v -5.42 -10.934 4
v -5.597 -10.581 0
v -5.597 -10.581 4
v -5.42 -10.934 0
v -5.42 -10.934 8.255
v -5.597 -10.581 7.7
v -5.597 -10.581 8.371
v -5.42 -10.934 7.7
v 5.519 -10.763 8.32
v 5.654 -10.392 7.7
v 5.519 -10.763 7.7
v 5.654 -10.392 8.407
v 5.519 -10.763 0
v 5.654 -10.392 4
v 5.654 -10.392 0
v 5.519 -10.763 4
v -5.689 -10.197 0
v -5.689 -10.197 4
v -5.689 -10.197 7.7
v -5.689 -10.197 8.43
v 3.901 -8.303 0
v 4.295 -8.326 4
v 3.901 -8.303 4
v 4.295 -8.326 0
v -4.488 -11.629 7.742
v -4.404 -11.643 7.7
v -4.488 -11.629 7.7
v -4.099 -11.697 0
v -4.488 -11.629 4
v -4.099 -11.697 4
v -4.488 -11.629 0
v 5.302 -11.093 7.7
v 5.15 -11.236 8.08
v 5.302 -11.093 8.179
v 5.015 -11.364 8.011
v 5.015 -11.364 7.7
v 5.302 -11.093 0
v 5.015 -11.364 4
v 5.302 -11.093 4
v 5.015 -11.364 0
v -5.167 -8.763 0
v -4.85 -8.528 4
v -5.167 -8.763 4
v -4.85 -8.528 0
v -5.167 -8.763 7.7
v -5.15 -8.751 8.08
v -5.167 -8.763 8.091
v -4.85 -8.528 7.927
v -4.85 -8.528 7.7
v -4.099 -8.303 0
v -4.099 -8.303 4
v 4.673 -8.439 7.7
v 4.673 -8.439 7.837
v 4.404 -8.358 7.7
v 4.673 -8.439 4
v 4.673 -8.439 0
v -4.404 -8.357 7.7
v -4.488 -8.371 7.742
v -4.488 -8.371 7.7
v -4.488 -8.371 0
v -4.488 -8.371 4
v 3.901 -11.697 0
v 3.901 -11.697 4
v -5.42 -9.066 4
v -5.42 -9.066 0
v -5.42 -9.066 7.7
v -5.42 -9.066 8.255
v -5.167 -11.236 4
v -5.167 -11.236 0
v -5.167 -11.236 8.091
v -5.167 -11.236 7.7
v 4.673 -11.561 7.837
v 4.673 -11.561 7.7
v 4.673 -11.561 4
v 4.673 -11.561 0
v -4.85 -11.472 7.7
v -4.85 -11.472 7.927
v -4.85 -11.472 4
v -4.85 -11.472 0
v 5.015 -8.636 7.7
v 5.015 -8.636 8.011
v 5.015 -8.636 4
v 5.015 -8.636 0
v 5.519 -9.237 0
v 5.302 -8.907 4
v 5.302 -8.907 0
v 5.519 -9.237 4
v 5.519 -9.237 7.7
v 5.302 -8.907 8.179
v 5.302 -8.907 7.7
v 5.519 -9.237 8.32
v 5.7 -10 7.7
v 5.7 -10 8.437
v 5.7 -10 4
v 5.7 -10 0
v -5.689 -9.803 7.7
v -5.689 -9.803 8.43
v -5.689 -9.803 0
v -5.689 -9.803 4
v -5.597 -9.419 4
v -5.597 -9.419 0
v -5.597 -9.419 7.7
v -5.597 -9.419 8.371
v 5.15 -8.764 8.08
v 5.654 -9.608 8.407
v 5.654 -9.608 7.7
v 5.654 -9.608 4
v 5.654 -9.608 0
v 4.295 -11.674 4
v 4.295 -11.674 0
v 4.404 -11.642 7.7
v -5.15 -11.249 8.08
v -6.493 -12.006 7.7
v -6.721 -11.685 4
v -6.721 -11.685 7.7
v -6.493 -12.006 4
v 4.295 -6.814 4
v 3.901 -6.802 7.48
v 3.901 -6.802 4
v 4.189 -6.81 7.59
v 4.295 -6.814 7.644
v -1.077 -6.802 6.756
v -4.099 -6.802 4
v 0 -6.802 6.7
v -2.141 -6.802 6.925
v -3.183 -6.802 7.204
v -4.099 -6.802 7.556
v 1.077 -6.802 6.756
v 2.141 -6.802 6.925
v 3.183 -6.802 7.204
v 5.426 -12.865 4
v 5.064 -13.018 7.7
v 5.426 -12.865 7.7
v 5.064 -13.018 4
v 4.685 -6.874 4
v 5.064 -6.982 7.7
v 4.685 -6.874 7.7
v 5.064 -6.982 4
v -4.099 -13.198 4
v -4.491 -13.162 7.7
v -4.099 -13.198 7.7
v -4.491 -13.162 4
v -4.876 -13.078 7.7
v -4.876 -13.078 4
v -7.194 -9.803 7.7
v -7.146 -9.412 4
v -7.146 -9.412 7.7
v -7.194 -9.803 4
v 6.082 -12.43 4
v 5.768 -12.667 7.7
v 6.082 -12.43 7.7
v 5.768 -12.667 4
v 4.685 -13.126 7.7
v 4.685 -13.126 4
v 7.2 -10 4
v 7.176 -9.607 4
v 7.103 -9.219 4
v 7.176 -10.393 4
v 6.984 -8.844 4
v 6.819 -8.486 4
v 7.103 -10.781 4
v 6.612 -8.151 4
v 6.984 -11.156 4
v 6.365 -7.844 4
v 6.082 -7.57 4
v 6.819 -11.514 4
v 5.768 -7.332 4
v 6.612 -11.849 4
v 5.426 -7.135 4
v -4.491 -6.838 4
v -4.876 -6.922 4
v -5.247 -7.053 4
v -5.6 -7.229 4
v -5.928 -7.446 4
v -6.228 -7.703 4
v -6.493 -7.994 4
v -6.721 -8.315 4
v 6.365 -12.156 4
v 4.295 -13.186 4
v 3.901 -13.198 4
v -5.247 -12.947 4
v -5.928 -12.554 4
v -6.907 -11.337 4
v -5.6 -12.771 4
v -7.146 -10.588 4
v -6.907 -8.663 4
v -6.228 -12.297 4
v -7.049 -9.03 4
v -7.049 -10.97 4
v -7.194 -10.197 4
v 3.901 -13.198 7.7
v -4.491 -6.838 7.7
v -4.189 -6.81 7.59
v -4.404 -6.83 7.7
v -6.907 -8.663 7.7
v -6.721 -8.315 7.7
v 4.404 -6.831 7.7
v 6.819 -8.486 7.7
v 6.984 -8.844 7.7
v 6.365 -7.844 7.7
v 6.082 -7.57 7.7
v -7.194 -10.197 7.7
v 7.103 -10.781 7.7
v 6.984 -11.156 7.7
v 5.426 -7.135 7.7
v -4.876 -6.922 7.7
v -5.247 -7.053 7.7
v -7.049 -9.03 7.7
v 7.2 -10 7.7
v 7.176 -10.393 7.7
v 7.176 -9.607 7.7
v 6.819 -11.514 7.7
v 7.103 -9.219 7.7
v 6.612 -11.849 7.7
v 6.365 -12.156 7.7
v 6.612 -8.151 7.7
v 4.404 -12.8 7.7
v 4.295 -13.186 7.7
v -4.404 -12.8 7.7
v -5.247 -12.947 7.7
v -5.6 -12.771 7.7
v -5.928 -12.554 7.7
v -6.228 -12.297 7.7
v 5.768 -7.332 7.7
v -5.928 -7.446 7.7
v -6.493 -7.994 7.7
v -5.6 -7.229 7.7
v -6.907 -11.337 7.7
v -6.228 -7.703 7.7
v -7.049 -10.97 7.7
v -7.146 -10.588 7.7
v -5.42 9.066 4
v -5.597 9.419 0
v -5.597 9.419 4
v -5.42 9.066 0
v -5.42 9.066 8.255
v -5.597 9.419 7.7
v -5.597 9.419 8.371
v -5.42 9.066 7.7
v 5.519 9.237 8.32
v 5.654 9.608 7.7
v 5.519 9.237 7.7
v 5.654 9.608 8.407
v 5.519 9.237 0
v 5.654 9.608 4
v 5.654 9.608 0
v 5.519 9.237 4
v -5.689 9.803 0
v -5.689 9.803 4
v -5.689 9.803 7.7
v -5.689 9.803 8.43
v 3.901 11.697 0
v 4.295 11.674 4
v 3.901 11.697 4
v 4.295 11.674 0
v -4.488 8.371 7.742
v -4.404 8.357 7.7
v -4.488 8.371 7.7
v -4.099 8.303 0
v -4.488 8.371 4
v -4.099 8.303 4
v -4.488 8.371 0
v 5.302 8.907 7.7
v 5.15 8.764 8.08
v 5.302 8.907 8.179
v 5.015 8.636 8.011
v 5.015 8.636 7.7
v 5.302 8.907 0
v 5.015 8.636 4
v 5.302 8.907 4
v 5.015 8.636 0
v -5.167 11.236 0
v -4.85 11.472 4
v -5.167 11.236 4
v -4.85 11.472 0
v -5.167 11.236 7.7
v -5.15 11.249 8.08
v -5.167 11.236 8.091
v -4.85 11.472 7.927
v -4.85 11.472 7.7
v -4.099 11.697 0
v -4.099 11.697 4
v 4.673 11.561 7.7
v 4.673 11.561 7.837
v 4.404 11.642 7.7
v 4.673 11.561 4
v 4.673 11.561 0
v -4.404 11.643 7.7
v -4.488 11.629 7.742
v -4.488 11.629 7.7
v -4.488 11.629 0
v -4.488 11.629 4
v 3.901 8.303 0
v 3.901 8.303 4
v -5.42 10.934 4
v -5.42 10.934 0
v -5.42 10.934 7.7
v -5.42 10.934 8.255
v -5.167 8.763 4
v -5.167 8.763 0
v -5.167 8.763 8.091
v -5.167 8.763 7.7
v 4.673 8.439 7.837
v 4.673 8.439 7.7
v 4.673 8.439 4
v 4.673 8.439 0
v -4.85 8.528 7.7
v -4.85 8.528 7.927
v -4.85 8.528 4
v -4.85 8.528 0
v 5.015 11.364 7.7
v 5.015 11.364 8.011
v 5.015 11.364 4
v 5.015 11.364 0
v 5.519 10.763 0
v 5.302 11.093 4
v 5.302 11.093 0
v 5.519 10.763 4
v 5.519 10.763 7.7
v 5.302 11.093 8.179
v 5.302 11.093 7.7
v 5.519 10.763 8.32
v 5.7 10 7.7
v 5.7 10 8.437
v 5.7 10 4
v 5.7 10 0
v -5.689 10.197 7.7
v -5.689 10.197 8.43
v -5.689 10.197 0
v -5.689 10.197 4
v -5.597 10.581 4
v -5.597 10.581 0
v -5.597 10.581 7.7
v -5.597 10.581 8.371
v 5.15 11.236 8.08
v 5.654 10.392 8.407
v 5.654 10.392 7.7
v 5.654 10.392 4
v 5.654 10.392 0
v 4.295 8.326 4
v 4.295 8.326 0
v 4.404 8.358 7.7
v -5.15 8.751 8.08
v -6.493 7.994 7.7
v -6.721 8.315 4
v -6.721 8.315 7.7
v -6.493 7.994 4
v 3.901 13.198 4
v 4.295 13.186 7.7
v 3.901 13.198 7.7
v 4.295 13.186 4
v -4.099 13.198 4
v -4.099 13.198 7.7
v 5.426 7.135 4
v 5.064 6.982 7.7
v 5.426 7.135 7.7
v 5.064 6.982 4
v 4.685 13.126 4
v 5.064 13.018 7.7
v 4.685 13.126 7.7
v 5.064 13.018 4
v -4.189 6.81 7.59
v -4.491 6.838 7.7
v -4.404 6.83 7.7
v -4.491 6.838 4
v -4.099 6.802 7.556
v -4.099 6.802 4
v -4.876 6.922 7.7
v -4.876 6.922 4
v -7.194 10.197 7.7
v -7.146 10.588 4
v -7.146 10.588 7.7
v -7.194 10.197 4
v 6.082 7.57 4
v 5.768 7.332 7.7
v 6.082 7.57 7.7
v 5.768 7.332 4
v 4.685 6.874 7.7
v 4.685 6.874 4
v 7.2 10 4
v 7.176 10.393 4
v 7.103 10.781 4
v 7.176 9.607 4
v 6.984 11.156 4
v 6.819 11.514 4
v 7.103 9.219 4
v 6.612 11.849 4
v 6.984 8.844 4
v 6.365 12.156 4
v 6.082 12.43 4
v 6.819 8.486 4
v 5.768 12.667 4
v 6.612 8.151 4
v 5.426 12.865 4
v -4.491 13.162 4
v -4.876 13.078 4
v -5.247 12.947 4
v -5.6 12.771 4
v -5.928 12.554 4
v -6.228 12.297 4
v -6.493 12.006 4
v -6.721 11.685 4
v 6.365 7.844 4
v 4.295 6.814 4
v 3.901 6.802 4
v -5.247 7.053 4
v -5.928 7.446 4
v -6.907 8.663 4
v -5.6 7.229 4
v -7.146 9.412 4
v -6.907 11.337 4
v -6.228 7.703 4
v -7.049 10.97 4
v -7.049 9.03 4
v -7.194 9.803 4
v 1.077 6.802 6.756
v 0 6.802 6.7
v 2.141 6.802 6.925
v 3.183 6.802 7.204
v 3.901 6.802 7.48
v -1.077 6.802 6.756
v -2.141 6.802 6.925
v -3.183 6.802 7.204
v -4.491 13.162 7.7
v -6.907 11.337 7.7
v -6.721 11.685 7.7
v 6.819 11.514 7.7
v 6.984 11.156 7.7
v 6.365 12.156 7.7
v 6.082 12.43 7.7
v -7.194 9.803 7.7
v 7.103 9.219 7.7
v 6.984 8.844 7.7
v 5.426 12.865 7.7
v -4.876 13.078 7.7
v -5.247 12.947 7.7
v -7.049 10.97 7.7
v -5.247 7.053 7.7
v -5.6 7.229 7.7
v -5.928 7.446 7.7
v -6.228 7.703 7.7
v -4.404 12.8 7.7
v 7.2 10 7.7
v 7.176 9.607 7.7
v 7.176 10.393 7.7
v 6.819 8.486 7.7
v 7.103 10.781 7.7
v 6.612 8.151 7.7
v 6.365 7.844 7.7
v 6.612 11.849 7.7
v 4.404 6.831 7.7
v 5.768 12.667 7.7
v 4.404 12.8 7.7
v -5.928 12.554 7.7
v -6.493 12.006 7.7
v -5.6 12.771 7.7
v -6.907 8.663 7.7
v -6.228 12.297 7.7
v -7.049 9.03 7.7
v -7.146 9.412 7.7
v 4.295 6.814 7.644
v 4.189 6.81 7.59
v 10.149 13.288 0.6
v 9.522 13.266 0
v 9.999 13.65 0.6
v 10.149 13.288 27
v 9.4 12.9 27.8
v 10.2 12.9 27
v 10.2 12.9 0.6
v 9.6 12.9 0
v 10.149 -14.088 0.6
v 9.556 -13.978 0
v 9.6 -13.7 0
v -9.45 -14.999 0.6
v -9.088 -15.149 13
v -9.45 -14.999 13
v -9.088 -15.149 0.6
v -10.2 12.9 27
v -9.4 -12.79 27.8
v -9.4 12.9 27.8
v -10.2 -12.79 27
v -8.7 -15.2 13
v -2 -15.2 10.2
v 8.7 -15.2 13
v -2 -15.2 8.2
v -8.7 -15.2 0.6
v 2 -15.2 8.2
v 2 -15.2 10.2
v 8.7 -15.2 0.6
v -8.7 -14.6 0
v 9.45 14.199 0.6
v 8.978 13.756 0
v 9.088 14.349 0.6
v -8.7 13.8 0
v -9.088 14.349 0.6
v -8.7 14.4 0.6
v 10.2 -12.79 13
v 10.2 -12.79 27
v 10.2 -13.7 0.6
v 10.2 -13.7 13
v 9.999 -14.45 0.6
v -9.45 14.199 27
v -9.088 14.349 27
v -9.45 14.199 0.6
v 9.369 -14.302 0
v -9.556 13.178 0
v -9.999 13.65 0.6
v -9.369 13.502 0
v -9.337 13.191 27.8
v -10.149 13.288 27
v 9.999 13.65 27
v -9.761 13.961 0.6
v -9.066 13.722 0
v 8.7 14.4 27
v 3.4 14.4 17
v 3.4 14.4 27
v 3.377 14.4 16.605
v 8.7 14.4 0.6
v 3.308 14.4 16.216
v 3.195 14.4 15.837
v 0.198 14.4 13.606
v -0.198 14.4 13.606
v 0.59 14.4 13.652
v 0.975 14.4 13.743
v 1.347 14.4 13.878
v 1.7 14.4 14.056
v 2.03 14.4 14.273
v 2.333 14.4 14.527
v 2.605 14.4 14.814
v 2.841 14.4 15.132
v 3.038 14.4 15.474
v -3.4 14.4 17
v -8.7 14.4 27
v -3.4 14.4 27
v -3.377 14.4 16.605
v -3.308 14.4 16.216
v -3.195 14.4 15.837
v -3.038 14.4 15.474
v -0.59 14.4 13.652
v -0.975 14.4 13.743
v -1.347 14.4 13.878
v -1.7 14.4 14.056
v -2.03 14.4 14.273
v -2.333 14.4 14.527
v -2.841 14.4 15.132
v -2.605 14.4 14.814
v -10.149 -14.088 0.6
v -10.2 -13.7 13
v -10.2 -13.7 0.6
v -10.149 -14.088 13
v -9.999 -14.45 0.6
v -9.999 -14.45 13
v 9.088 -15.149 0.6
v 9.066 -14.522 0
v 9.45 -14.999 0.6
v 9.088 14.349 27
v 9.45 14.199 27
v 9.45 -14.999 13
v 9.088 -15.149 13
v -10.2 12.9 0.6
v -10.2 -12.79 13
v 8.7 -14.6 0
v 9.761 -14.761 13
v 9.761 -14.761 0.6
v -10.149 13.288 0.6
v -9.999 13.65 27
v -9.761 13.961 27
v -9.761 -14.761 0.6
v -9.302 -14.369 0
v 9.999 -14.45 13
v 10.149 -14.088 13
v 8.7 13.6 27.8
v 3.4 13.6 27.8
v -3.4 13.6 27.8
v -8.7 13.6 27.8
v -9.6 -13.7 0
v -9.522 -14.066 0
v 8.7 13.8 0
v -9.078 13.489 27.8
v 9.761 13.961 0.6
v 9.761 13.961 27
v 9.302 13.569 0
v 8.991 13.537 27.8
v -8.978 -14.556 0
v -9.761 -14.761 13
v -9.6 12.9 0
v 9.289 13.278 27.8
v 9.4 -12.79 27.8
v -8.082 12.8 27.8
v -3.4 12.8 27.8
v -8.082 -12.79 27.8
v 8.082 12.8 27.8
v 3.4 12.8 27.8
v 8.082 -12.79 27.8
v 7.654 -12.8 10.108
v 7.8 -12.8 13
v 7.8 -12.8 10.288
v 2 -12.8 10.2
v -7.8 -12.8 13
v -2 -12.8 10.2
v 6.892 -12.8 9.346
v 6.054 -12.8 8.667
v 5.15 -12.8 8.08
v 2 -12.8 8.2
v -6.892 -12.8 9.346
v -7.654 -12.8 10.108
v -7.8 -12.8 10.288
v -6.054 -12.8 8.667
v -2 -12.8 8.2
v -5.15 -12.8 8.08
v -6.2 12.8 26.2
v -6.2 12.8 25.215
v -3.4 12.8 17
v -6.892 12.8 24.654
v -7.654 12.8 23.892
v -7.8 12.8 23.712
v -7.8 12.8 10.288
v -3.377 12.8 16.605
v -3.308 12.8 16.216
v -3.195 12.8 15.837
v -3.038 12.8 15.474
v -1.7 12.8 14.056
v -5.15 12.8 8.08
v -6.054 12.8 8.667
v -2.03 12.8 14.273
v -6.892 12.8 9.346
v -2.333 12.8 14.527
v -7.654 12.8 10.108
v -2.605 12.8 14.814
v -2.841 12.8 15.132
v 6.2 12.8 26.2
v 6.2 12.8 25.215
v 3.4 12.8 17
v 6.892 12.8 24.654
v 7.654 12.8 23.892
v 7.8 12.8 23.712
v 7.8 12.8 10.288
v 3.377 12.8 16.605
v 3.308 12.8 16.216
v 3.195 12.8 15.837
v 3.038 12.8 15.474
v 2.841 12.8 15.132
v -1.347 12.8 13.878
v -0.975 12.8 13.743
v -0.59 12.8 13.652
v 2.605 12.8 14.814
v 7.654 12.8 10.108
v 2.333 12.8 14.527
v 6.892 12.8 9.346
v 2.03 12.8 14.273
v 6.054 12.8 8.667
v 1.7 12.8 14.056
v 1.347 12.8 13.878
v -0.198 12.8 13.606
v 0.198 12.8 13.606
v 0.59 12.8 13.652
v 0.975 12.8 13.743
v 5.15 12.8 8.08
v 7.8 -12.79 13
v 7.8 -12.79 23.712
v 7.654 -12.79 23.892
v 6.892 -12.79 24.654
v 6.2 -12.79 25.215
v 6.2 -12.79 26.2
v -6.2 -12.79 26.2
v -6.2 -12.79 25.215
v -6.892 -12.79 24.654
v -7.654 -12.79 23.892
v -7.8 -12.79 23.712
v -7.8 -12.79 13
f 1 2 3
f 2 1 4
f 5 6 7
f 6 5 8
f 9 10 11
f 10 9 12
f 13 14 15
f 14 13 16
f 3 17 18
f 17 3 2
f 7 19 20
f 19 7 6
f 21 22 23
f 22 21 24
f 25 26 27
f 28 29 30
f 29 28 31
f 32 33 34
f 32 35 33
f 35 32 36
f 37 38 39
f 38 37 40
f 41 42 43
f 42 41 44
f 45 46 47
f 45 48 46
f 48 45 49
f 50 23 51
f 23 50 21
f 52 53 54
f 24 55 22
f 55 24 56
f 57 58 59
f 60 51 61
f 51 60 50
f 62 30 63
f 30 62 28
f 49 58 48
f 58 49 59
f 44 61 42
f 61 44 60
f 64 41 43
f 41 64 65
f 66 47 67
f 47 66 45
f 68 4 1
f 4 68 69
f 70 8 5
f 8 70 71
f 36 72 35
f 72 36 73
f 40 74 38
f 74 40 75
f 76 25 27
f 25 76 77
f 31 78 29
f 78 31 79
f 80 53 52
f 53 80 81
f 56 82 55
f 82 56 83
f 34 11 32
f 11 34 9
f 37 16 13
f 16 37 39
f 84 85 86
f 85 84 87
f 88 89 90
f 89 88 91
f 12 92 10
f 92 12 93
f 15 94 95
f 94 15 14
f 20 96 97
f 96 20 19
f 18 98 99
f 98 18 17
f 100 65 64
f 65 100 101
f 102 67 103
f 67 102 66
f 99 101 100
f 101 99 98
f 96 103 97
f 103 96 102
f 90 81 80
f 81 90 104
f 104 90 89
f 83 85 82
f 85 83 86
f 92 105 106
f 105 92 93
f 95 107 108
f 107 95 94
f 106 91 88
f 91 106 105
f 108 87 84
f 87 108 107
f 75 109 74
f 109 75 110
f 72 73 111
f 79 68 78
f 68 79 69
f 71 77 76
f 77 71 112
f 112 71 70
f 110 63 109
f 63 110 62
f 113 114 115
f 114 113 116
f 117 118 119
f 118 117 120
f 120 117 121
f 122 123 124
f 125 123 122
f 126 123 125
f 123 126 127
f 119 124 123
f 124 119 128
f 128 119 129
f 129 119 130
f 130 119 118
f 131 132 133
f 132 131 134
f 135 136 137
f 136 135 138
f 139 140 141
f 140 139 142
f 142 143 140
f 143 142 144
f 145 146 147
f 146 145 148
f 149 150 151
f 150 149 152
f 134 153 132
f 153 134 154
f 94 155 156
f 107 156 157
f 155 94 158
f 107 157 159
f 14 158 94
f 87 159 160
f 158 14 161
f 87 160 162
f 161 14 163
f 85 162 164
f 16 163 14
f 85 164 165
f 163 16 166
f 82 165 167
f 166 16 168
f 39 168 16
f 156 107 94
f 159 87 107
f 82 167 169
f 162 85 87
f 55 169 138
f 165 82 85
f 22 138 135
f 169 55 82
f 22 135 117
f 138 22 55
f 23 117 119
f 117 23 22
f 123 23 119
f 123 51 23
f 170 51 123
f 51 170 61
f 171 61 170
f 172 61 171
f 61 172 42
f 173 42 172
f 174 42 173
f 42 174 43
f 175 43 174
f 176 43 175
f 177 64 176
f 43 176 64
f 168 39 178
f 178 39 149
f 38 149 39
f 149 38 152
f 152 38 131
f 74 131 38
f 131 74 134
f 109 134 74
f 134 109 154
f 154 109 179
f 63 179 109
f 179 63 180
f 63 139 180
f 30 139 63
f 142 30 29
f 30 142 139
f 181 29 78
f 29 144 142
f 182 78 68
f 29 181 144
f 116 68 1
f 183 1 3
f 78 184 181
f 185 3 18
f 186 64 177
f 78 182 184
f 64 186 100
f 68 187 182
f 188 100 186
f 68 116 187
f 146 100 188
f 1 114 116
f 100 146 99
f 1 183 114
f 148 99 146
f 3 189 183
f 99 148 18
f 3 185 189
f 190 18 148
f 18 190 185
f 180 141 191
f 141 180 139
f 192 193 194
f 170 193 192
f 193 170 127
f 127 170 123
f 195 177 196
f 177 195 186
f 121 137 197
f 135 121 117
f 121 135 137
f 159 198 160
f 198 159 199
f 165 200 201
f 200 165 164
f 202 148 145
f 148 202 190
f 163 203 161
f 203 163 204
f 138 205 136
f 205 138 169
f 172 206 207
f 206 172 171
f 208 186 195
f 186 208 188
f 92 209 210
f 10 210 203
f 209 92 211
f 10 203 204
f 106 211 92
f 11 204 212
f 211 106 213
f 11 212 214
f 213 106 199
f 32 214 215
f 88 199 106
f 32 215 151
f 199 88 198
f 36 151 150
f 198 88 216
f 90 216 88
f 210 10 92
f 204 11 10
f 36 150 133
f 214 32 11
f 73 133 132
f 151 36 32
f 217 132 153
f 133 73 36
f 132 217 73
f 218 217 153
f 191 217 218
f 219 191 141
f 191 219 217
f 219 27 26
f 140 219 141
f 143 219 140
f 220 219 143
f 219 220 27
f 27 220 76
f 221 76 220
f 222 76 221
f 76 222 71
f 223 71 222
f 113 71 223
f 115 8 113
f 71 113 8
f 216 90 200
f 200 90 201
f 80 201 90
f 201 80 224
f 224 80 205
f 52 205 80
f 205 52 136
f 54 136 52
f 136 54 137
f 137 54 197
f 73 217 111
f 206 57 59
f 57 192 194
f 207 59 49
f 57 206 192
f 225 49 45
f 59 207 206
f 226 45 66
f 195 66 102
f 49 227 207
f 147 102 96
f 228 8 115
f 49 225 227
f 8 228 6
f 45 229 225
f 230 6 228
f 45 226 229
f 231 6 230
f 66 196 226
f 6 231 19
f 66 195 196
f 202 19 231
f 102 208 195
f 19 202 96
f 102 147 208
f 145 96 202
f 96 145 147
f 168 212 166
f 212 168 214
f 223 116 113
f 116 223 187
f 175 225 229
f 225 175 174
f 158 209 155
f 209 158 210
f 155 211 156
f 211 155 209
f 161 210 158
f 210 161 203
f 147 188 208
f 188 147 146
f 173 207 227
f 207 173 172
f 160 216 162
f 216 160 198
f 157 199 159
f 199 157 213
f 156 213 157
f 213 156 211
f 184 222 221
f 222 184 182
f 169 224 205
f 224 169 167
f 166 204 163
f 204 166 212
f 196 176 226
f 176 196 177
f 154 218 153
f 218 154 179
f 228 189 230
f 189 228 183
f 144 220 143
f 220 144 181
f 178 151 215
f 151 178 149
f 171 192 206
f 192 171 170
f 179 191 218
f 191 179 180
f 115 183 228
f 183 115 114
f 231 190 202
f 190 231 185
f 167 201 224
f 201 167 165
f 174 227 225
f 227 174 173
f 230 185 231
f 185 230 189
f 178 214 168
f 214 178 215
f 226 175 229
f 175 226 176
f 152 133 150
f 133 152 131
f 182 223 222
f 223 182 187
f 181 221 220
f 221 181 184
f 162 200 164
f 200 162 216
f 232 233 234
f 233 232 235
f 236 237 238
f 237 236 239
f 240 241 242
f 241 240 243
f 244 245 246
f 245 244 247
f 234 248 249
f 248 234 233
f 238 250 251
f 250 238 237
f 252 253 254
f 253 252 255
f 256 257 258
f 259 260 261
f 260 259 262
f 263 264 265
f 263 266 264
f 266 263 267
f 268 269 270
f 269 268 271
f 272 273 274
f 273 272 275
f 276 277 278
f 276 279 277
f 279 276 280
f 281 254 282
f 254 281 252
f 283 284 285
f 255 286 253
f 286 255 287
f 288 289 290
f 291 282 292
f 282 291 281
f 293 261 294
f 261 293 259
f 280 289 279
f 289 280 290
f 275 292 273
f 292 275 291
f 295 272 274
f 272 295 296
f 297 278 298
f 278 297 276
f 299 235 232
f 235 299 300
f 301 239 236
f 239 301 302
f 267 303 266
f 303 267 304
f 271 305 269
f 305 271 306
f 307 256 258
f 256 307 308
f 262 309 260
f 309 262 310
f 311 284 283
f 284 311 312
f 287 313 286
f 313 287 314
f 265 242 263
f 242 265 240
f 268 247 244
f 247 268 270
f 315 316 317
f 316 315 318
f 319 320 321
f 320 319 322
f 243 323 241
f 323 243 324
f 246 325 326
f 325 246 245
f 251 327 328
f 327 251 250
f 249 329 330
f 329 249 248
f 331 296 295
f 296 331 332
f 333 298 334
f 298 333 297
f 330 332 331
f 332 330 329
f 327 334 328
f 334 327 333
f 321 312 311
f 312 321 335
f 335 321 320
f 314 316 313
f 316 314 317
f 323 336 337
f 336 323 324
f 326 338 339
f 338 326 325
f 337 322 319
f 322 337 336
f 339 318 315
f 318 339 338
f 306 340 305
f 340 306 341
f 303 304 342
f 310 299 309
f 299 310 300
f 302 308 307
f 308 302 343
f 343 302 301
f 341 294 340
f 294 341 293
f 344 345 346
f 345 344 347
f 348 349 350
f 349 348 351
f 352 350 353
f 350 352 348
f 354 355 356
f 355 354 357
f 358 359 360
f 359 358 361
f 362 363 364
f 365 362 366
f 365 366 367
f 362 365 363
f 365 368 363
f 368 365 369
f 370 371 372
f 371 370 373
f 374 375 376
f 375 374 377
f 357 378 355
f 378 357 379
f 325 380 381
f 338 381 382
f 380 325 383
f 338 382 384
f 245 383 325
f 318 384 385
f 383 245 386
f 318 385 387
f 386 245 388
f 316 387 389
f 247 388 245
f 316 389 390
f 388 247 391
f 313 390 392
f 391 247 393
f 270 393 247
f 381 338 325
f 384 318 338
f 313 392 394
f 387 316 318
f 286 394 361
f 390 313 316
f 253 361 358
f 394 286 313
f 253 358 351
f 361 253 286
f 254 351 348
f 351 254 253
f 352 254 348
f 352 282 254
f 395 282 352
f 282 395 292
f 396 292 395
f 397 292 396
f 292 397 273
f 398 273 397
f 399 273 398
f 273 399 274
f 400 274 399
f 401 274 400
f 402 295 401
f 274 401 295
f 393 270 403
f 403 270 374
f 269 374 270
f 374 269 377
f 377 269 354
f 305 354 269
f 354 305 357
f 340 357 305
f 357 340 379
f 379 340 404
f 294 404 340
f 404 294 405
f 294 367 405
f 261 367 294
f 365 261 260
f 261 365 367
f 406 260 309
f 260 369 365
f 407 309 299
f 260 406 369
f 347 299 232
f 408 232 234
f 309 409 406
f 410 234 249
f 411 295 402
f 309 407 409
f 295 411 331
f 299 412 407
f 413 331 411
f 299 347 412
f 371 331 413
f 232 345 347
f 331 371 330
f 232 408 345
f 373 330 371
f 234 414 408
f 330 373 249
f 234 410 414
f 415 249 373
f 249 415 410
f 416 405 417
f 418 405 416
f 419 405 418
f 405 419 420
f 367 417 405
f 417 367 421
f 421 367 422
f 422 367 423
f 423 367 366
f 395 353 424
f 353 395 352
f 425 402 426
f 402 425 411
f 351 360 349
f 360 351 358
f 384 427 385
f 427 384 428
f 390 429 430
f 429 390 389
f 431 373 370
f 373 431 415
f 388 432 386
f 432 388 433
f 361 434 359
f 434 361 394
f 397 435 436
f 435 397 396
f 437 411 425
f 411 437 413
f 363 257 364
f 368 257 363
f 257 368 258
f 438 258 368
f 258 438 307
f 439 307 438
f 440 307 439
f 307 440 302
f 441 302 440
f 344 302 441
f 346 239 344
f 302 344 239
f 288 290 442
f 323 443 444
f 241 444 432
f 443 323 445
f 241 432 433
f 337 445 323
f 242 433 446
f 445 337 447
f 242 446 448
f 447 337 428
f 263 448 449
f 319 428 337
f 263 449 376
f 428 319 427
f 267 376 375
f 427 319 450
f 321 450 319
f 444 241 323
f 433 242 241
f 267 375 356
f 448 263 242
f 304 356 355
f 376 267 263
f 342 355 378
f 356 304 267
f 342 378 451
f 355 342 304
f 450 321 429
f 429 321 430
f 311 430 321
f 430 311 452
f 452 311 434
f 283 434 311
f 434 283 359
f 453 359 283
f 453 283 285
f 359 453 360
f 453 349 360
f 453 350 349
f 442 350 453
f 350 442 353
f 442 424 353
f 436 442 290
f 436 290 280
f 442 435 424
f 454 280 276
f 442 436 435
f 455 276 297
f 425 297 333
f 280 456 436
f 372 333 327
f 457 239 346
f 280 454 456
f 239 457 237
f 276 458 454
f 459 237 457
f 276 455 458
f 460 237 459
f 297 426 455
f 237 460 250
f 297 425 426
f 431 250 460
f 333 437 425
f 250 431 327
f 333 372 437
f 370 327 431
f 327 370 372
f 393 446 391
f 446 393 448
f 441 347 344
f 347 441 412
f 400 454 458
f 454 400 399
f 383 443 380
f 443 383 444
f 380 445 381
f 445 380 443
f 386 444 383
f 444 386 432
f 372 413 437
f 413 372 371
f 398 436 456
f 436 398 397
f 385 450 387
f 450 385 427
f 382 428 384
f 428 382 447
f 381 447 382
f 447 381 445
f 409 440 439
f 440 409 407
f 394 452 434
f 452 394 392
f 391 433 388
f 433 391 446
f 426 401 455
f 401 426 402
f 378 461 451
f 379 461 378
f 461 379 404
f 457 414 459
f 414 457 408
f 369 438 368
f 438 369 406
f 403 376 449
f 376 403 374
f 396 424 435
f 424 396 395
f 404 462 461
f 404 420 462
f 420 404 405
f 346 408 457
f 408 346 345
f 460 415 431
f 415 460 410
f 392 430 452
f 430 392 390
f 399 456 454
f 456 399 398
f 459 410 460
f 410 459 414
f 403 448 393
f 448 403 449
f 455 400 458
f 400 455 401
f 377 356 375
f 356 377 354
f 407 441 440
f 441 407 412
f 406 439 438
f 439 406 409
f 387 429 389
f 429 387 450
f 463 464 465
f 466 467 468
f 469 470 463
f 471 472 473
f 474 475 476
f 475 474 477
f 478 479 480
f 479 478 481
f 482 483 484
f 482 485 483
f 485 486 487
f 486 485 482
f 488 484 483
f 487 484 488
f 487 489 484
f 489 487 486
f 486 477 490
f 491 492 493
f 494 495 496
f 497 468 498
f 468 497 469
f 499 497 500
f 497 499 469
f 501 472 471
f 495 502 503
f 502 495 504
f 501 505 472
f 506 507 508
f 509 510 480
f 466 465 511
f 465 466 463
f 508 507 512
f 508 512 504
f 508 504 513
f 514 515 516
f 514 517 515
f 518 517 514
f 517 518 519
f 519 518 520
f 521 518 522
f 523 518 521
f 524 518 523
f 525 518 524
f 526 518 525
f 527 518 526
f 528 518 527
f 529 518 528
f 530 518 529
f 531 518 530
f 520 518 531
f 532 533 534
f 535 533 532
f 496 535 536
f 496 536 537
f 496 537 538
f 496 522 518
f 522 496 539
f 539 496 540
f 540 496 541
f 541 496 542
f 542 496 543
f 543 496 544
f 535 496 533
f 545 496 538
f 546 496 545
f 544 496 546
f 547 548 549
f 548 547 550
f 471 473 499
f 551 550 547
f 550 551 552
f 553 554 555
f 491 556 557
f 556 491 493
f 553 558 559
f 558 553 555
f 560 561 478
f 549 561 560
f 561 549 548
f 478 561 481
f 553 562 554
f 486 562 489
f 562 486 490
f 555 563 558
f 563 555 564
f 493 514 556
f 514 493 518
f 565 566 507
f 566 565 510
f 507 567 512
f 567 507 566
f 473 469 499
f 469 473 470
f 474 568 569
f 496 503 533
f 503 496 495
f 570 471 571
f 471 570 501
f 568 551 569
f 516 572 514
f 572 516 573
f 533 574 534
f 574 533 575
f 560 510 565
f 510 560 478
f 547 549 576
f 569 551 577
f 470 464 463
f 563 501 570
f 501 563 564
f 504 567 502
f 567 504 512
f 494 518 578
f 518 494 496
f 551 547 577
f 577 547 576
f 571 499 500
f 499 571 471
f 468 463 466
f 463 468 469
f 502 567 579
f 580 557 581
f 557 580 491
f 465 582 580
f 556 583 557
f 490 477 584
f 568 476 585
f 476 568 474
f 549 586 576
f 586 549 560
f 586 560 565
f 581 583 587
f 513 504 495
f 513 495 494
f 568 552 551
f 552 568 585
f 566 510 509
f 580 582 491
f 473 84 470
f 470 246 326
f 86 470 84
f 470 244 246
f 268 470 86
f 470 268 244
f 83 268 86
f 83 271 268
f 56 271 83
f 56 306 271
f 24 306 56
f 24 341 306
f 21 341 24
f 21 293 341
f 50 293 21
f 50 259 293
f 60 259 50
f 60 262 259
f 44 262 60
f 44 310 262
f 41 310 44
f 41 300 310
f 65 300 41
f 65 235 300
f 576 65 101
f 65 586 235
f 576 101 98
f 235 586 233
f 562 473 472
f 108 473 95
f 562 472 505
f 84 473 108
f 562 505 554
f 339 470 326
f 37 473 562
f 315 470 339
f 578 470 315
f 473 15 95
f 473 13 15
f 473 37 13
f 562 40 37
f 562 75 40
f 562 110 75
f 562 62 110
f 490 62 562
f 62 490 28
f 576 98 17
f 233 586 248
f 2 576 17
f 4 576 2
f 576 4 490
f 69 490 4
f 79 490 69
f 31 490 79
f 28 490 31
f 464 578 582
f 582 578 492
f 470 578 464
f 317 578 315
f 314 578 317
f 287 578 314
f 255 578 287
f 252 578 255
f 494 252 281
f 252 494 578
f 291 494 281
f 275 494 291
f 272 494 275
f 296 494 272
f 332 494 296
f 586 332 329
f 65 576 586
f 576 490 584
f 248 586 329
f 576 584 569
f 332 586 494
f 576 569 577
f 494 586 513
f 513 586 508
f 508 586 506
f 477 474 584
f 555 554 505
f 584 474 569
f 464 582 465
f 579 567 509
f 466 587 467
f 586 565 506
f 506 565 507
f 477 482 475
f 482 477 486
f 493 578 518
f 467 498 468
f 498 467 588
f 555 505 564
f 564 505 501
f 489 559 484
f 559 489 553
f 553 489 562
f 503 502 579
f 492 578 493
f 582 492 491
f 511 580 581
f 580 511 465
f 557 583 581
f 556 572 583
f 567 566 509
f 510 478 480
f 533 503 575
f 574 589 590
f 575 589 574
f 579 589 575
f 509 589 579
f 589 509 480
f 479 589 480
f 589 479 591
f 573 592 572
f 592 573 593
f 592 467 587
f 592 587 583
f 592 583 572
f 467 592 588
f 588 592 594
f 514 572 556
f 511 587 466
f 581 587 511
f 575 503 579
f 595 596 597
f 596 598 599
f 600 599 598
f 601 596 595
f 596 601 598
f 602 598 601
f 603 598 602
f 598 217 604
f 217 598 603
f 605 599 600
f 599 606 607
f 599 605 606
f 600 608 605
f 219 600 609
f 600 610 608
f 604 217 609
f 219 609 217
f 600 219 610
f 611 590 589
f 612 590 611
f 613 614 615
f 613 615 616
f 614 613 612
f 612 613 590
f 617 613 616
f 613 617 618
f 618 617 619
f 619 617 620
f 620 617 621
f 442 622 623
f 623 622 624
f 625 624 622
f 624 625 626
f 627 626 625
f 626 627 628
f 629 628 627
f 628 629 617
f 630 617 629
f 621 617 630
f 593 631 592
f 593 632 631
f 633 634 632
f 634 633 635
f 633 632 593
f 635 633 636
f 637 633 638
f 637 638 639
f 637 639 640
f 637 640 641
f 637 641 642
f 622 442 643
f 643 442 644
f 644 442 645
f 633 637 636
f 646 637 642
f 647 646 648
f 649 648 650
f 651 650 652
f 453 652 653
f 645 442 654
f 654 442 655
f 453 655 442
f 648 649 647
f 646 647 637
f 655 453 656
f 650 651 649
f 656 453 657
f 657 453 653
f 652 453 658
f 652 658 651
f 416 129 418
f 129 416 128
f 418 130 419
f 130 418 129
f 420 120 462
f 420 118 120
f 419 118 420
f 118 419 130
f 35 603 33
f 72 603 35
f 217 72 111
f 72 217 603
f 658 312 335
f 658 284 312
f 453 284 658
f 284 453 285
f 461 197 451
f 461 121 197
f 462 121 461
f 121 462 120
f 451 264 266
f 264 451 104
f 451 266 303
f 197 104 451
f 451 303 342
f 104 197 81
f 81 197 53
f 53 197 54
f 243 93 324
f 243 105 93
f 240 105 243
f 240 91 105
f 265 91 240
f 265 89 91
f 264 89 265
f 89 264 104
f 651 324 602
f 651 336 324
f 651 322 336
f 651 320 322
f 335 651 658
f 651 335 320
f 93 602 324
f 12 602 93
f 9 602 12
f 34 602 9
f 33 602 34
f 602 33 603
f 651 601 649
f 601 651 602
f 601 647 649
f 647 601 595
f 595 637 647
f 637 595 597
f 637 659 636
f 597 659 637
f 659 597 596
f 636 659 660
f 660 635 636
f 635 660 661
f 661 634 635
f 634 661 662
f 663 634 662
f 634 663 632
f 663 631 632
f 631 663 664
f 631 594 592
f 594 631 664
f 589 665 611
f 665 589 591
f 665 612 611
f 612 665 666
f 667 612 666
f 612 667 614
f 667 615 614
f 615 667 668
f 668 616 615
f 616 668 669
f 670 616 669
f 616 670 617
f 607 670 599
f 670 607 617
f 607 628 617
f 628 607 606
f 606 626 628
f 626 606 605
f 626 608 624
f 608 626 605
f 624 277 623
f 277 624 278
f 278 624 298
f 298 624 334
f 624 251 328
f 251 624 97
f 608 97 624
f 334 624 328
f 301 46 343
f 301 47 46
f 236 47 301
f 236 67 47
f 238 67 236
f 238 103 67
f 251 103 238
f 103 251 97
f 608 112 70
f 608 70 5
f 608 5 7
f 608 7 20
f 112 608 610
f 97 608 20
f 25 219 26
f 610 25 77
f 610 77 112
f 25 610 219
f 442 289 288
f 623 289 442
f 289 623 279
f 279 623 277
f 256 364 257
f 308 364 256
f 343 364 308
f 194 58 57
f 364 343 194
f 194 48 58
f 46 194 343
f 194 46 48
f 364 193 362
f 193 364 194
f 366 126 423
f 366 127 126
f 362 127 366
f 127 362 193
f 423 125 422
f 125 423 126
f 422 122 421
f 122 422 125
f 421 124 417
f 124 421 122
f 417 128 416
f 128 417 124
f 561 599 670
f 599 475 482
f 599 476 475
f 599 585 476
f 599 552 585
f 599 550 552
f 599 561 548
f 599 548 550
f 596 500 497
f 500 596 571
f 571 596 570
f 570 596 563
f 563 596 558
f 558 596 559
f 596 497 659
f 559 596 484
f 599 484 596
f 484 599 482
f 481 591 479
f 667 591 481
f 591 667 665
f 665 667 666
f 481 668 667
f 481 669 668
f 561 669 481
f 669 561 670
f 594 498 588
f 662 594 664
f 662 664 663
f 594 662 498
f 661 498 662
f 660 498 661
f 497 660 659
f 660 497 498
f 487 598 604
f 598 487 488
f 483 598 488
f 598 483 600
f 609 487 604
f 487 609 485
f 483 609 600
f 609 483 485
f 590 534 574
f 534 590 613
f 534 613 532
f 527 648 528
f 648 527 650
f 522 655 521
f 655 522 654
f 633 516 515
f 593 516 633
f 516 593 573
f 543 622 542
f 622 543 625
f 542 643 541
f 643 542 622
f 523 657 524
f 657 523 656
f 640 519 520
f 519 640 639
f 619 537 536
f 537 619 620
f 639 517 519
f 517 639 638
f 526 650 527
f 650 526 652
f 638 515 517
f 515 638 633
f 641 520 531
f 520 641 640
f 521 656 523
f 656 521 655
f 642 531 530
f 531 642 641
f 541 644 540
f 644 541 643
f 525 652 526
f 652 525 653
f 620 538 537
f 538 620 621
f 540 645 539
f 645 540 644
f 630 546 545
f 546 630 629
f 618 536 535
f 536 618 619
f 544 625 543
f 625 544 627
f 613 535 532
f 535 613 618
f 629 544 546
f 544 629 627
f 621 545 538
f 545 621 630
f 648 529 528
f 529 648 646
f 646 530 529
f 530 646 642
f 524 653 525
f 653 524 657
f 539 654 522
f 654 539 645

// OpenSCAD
// file: ../../COMMON/stem_core.scad
// =====================================================================
//  stem_core.scad — shared geometry helpers for every STEM_KIT part.
// =====================================================================
include <../PARAMETERS/config.scad>
// =====================================================================

// ---------- rounded / chamfered prisms --------------------------------

// Rounded rectangle (2D), centred.
module rrect(size, r) {
    rr = min(r, min(size[0], size[1]) / 2 - 0.01);
    offset(r = rr) square([size[0] - 2 * rr, size[1] - 2 * rr], center = true);
}

// Box with rounded vertical edges, chamfered bottom edge (elephant-foot
// relief) and rounded-ish (chamfered) top edge. Sits on z = 0, centred XY.
module rbox(size, r = 2, top = edge_r, bottom = chamfer) {
    h = size[2];
    hull() {
        linear_extrude(0.01) rrect([size[0] - 2 * bottom, size[1] - 2 * bottom], max(r - bottom, 0.1));
        translate([0, 0, bottom]) linear_extrude(h - bottom - top) rrect([size[0], size[1]], r);
        translate([0, 0, h - 0.01]) linear_extrude(0.01) rrect([size[0] - 2 * top, size[1] - 2 * top], max(r - top, 0.1));
    }
}

// Cylinder with chamfered/rounded top and bottom edges (safe hubs, knobs).
module rcyl(d, h, top = edge_r, bottom = chamfer) {
    rotate_extrude() polygon([
        [0, 0], [d / 2 - bottom, 0], [d / 2, bottom],
        [d / 2, h - top], [d / 2 - top, h], [0, h]
    ]);
}

// Stadium (slot / rounded bar) 2D between two points on the X axis.
module stadium2d(len, w) {
    hull() { circle(d = w); translate([len, 0]) circle(d = w); }
}

// ---------- holes ------------------------------------------------------

// Vertical through hole with small top/bottom chamfers.
module vhole(d = grid_hole_d, h = 50, ch = 0.4) {
    translate([0, 0, -h / 2]) cylinder(d = d, h = h);
}

// Horizontal hole along +Y, printable without supports (teardrop tip up).
module teardrop_y(d, len, center = true) {
    translate([0, center ? -len / 2 : 0, 0]) rotate([-90, 0, 0])
        linear_extrude(len) teardrop2d(d);
}
module teardrop_x(d, len, center = true) {
    translate([center ? -len / 2 : 0, 0, 0]) rotate([0, 90, 0]) rotate([0, 0, -90])
        linear_extrude(len) teardrop2d(d);
}
// 2D teardrop: circle + 45° roof pointing "up" in the final part (+Z).
// After rotate([-90,0,0]) local +Y becomes -Z, so the roof points to -Y here.
module teardrop2d(d) {
    r = d / 2;
    union() {
        circle(d = d);
        polygon([[-r * sqrt(2) / 2, -r * sqrt(2) / 2], [0, -r * sqrt(2)], [r * sqrt(2) / 2, -r * sqrt(2) / 2]]);
    }
}

// Hex nut pocket (flat sides parallel to X), opening at z = 0 going +Z.
module nut_pocket(depth = nut_pocket_depth, af = nut_pocket_af) {
    cylinder(d = af / cos(30), h = depth, $fn = 6);
}

// Side-entry nut slot: nut plane is XY, slot opens toward +dir (X).
// Centred on the screw axis (Z), slot height nut_slot_t, runs out `len`.
module nut_slot_x(len = 10, af = nut_pocket_af, t = nut_slot_t) {
    translate([0, 0, -t / 2]) hull() {
        cylinder(d = af / cos(30), h = t, $fn = 6);
        translate([len, 0, 0]) cylinder(d = af / cos(30), h = t, $fn = 6);
    }
}

// Counterbored clearance hole from top surface at height `top` downward.
module cbore(top, depth, d = counterbore_d) {
    translate([0, 0, top - depth]) cylinder(d = d, h = depth + 20);
    translate([0, 0, -20]) cylinder(d = grid_hole_d, h = top + 40);
}

// Grid of vertical holes: nx x ny, pitch grid_pitch, first hole centred
// at `origin` (XY). Used by every plate.
module grid_holes(nx, ny, origin = [0, 0], h = 100, d = grid_hole_d) {
    for (i = [0 : nx - 1], j = [0 : ny - 1])
        translate([origin[0] + i * grid_pitch, origin[1] + j * grid_pitch, 0]) vhole(d, h);
}

// Slot (for adjustable mounting) along X, length = travel.
module slot_x(travel, d = grid_hole_d, h = 100) {
    translate([-travel / 2, 0, -h / 2]) linear_extrude(h) stadium2d(travel, d);
}

// ---------- shaft bores ------------------------------------------------

// 2D bore profile: round, or D if shaft_flat > 0.
module bore2d(d) {
    if (shaft_flat > 0)
        intersection() { circle(d = d); translate([-d, -d / 2]) square([2 * d, d - shaft_flat + (d - shaft_diameter) / 2]); }
    else circle(d = d);
}

// Standard HUB: cylinder hub_d x hub_h standing on z = z0, with bore,
// radial M3 set screw at mid height and a captive-nut slot from the top.
// Call inside difference() for the cut-outs: hub_body()/hub_cuts().
module hub_body(z0, d = hub_d, h = hub_h) {
    translate([0, 0, z0]) rcyl(d, h, top = 0.8, bottom = 0);
}
module hub_cuts(z0, total_h, d = hub_d, h = hub_h, bore = shaft_fixed_bore, set_screw = true, screw_angle = 0) {
    // bore through everything
    translate([0, 0, -1]) linear_extrude(total_h + 2) bore2d(bore);
    // entry chamfer on bore
    translate([0, 0, total_h - 0.6]) cylinder(d1 = bore, d2 = bore + 1.2, h = 0.61);
    translate([0, 0, -0.01]) cylinder(d1 = bore + 1.2, d2 = bore, h = 0.6);
    if (set_screw) rotate([0, 0, screw_angle]) {
        zs = z0 + h / 2;
        // radial screw hole (teardrop, prints without support)
        translate([0, 0, zs]) teardrop_x(screw_clear_d, d, center = false);
        // captive nut slot, entered from the hub top face
        nr = bore / 2 + (d / 2 - bore / 2) / 2;       // radial position of nut
        translate([nr - nut_slot_t / 2, -nut_pocket_af / 2, zs - nut_pocket_af / cos(30) / 2 - 0.1])
            cube([nut_slot_t, nut_pocket_af, total_h + 10]);   // open to the hub top face
    }
}

// ---------- labels -----------------------------------------------------

// Engrave text into a top surface at height z (depth 0.6 = 3 layers).
module engrave(txt, size = 5, z = 0, depth = 0.6, halign = "center") {
    translate([0, 0, z - depth]) linear_extrude(depth + 1)
        text(txt, size = size, font = "Liberation Sans:style=Bold", halign = halign, valign = "center");
}

// ---------- misc -------------------------------------------------------

function grid_snap(v) = ceil(v / grid_pitch) * grid_pitch;
// file: ../../COMMON/mounts/motor_mount.scad
// =====================================================================
//  PART: motor mount (130-size DC motor, snap-in cradle) — COMMON/mounts
//  Motor axis along +Y at `axis_height`, over a grid line, so a motor
//  pinion meshes with any gear held by a bearing/axle mount on the grid.
//  The motor snaps in from above (flexing side walls), the flats stop it
//  turning, front/rear walls stop it sliding. Screws: M3 x 10 at (0, ±10)
//  — fit them BEFORE snapping the motor in.
//  slotted = true: holes become ±4 mm slots across the axis (used by the
//  solar vehicle mount to explore too-tight / too-loose gear mesh).
//  Print: standing on its floor. No supports.
// =====================================================================
include <../../PARAMETERS/config.scad>
use <../stem_core.scad>

slotted = false;
motor_mount(slotted);

// motor cross-section (flats vertical), grown by c
module motor_section(c = 0) {
    intersection() {
        circle(r = motor_d / 2 + c);
        square([motor_flat + 2 * c, motor_d + 4], center = true);
    }
}

function mm_front() = motor_len / 2 + tolerance;            // front wall inner face (Y)
function mm_front_outer() = mm_front() + min_wall;           // boss side face

module motor_mount(slotted = false, travel = 8) {
    h   = axis_height;
    c   = tolerance;
    wi  = motor_flat / 2 + c;                  // inner half width
    wo  = wi + wall_thickness;                 // outer half width
    yf  = mm_front();                          // front wall inner
    yr  = -yf;                                 // rear wall inner
    top = h + motor_d / 2 - 1.5 + 2.2;         // cradle top
    lip = 6.2;                                  // lip half-opening
    zfl = h - motor_d / 2 - c;                  // floor top (under motor)
    difference() {
        union() {
            // body: walls + floor, from rear wall to front wall
            translate([0, (yf + min_wall + yr - wall_thickness) / 2, 0])
                rbox([2 * wo, yf + min_wall - yr + wall_thickness, top], r = 1.5, top = 0.8);
        }
        // motor pocket + snap opening, through the full length between walls
        translate([0, yr, 0]) rotate([-90, 0, 0]) mirror([0, 1, 0]) linear_extrude(yf - yr)
            union() {
                translate([0, h]) motor_section(c);
                polygon([[-lip, h + 4], [lip, h + 4], [lip, top - 1.6], [lip + 2, top + 0.1],
                         [-lip - 2, top + 0.1], [-lip, top - 1.6]]);
            }
        // rear wall: keep only a low stop (below the axis) + zip-tie slot
        translate([-wo - 1, yr - wall_thickness - 1, h - 4]) cube([2 * wo + 2, wall_thickness + 1.01, top]);
        translate([-2, yr - wall_thickness - 1, zfl + 1.5]) cube([4, wall_thickness + 2, 2]);
        // front wall: U slot for the motor boss and shaft
        translate([0, yf - 1, h]) rotate([-90, 0, 0]) linear_extrude(min_wall + 2)
            hull() { circle(d = motor_boss_d + 0.6); translate([-(motor_boss_d + 0.6) / 2, -top]) square([motor_boss_d + 0.6, 1]); }
        // mounting holes / slots with counterbores under the motor
        for (y = [-grid_pitch, grid_pitch]) translate([0, y, 0]) {
            if (slotted) {
                slot_x(travel, grid_hole_d, 40);
                translate([0, 0, foot_thickness]) hull() for (x = [-travel / 2, travel / 2])
                    translate([x, 0, 0]) cylinder(d = counterbore_d, h = zfl - foot_thickness + 1);
            } else {
                vhole(grid_hole_d, 40);
                translate([0, 0, foot_thickness]) cylinder(d = counterbore_d, h = zfl - foot_thickness + 1);
            }
        }
        if (slotted) translate([0, yf + min_wall, top - 5]) rotate([-90, 0, 0])
            translate([0, 0, -0.5]) linear_extrude(1) text("V", size = 4, font = "Liberation Sans:style=Bold", halign = "center", valign = "center");
    }
}
// file: ../../PARAMETERS/config.scad
// =====================================================================
//  STEM_KIT — CENTRAL PARAMETER FILE  ("ForgeGrid" mechanical standard)
// ---------------------------------------------------------------------
//  Every part in the library includes this file. Change a value here,
//  run `python3 tools/build.py`, and the whole library regenerates.
//  All dimensions in millimetres.
// =====================================================================

// ---------------------------------------------------------------------
// 1. PRINTER / PROCESS
// ---------------------------------------------------------------------
nozzle          = 0.4;
layer_height    = 0.2;
tolerance       = 0.2;    // sliding clearance per side (tune with STEM_TOLERANCE_TEST)
press_allow     = 0.05;   // extra for press fits (bores that should grip)
min_wall        = 1.6;    // never go below this
wall_thickness  = 2.4;    // preferred wall (6 perimeters @ 0.4)
edge_r          = 1.0;    // rounding of exposed edges (child safety)
chamfer         = 0.6;    // bottom-edge chamfer (elephant-foot relief)

$fa = 6;                  // facet angle
$fs = 0.4;                // facet size

// ---------------------------------------------------------------------
// 2. GRID  (the heart of the ecosystem)
// ---------------------------------------------------------------------
//  Holes sit on a 10 mm lattice, 5 mm in from every plate edge, so
//  plates placed side by side keep one continuous lattice.
grid_pitch            = 10;
plate_size            = 100;   // universal base plate (square)
plate_thickness       = 6;     // base plates, rails, chassis
foot_thickness        = 4;     // flange / foot of every mount
//  => standard joint: 4 mm foot + 6 mm plate = M3 x 10 screw, nut in
//     the hex pocket under the plate. One screw length does 90 % of joints.

// ---------------------------------------------------------------------
// 3. FASTENERS (M3 everywhere: one screwdriver, one nut)
// ---------------------------------------------------------------------
screw_size            = 3;
screw_clear_d         = 3.4;   // clearance hole (also the grid hole)
grid_hole_d           = screw_clear_d;
screw_tap_d           = 2.6;   // hole a screw self-taps into
screw_head_d          = 5.7;   // ISO 7380 BUTTON head = kit standard (low, rounded, child-safe)
screw_head_h          = 1.65;
counterbore_d         = 6.4;
nut_af                = 5.5;   // M3 nut across flats
nut_thick             = 2.4;
nut_pocket_af         = nut_af + 0.35;
nut_pocket_depth      = 3.0;   // pocket under plates (nut sits flush)
nut_slot_t            = nut_thick + 0.4;  // side-entry slot thickness
set_screw_len         = 6;     // M3 x 6 grub screw for hubs

// ---------------------------------------------------------------------
// 4. SHAFTS
// ---------------------------------------------------------------------
//  Default: 3 mm steel rod (silver steel / stainless). Printed shafts
//  are provided for light-duty use. Alternative systems: set
//  shaft_diameter = 4 or 5 and rebuild.
shaft_diameter        = 3;
shaft_flat            = 0;     // >0 : D-shaft, flat depth (e.g. 0.5)
shaft_fixed_bore      = shaft_diameter + 0.15;  // hub bore (set-screw locked)
shaft_free_bore       = shaft_diameter + 0.4;   // free-spinning bore / bushing
shaft_lengths         = [40, 60, 80, 100, 120];

//  Horizontal shafts: all pillow blocks, motor mounts and axle mounts
//  put their axis at this height above the surface they are bolted to,
//  so any two of them on the grid are automatically coaxial/parallel.
axis_height           = 17;
axis_height_high      = 37;    // = axis_height + 2 pitches (pulleys, big wheels)

// ---------------------------------------------------------------------
// 5. BEARINGS
// ---------------------------------------------------------------------
bearing_size          = [5, 16, 5];   // 625 : bore, OD, width (default housing)
bearing_small         = [3, 10, 4];   // 623 : fits 3 mm shafts via adapter ring
bearing_pocket_d      = bearing_size[1] + 0.15;

// ---------------------------------------------------------------------
// 6. GEARS
// ---------------------------------------------------------------------
//  Module 2 + tooth counts that are multiples of 10  =>  centre distance
//  = (z1+z2) mm is ALWAYS a multiple of 10  =>  ANY two gears mesh when
//  their shafts sit in grid holes. (3-4-5 diagonals also work: 50 mm.)
gear_module           = 2;
gear_pressure_angle   = 20;
gear_width            = 6;
gear_backlash         = 0.30;  // total circular backlash per mesh
gear_clearance_k      = 0.25;  // root clearance = k * module
gear_teeth_set        = [10, 20, 30, 40];
//  Gearbox frame: two frame plates, outer faces 60 mm apart (on grid),
//  48 mm gap = three gear levels (A, M, B).
frame_gap             = 48;
hub_d                 = 14;
hub_h                 = 7;

// ---------------------------------------------------------------------
// 7. WHEELS / PULLEYS
// ---------------------------------------------------------------------
wheel_diameter        = 60;
wheel_width           = 10;
axle_diameter         = shaft_diameter;
oring_cs              = 3.0;    // O-ring cross-section used as tyre / belt
belt_cs               = 2.5;    // O-ring / round-belt cord for pulleys
pulley_sizes          = [20, 40, 60];  // effective (belt-line) diameters

// ---------------------------------------------------------------------
// 8. MOTORS (130-size toy / solar motor is the default)
// ---------------------------------------------------------------------
motor_size            = [20.2, 15.2, 25.2]; // body dia, across-flats, length
motor_d               = motor_size[0];
motor_flat            = motor_size[1];
motor_len             = motor_size[2];
motor_boss_d          = 6.2;
motor_boss_h          = 1.6;
motor_shaft_d         = 2.0;
motor_shaft_len       = 8.5;   // beyond boss
motor_shaft_bore      = 1.9;   // press fit onto 2 mm motor shaft

// ---------------------------------------------------------------------
// 9. SOLAR PANEL (bought, not printed) — frame is parametric
// ---------------------------------------------------------------------
solar_panel_size      = [110, 69, 3.0];  // 5 V 1 W epoxy panel (common)
solar_panel_clear     = 0.6;

// ---------------------------------------------------------------------
// 10. ELECTRONICS
// ---------------------------------------------------------------------
mounting_hole_spacing = grid_pitch;   // everything bolts to the grid
electronics_slot_w    = screw_clear_d;
led_hole_d            = 5.1;
buzzer_hole_d         = 12.2;

// ---------------------------------------------------------------------
// 11. SAFETY LIMITS (checked by tools/qc.py)
// ---------------------------------------------------------------------
max_part_voltage      = 12;    // nothing in this kit uses more
min_rim_thickness     = 2.0;   // blades/links: no edge thinner than this
finger_gap_max        = 6;     // guard openings smaller than a child's finger
// main file
// =====================================================================
//  PART: solar vehicle motor mount — SOLAR/vehicle
//  The common snap-in 130-motor cradle with its screw holes turned into
//  ±4 mm slots across the motor axis. On the grid the motor sits at the
//  exact gear centre distance; the slots let children deliberately make
//  the mesh too loose (gears skip) or too tight (motor stalls) and see
//  why the grid position is right. Marked "V" on the front wall.
//  Print: standing on its floor. No supports.
// =====================================================================
include <../../PARAMETERS/config.scad>
use <../../COMMON/mounts/motor_mount.scad>

motor_mount(slotted = true);
